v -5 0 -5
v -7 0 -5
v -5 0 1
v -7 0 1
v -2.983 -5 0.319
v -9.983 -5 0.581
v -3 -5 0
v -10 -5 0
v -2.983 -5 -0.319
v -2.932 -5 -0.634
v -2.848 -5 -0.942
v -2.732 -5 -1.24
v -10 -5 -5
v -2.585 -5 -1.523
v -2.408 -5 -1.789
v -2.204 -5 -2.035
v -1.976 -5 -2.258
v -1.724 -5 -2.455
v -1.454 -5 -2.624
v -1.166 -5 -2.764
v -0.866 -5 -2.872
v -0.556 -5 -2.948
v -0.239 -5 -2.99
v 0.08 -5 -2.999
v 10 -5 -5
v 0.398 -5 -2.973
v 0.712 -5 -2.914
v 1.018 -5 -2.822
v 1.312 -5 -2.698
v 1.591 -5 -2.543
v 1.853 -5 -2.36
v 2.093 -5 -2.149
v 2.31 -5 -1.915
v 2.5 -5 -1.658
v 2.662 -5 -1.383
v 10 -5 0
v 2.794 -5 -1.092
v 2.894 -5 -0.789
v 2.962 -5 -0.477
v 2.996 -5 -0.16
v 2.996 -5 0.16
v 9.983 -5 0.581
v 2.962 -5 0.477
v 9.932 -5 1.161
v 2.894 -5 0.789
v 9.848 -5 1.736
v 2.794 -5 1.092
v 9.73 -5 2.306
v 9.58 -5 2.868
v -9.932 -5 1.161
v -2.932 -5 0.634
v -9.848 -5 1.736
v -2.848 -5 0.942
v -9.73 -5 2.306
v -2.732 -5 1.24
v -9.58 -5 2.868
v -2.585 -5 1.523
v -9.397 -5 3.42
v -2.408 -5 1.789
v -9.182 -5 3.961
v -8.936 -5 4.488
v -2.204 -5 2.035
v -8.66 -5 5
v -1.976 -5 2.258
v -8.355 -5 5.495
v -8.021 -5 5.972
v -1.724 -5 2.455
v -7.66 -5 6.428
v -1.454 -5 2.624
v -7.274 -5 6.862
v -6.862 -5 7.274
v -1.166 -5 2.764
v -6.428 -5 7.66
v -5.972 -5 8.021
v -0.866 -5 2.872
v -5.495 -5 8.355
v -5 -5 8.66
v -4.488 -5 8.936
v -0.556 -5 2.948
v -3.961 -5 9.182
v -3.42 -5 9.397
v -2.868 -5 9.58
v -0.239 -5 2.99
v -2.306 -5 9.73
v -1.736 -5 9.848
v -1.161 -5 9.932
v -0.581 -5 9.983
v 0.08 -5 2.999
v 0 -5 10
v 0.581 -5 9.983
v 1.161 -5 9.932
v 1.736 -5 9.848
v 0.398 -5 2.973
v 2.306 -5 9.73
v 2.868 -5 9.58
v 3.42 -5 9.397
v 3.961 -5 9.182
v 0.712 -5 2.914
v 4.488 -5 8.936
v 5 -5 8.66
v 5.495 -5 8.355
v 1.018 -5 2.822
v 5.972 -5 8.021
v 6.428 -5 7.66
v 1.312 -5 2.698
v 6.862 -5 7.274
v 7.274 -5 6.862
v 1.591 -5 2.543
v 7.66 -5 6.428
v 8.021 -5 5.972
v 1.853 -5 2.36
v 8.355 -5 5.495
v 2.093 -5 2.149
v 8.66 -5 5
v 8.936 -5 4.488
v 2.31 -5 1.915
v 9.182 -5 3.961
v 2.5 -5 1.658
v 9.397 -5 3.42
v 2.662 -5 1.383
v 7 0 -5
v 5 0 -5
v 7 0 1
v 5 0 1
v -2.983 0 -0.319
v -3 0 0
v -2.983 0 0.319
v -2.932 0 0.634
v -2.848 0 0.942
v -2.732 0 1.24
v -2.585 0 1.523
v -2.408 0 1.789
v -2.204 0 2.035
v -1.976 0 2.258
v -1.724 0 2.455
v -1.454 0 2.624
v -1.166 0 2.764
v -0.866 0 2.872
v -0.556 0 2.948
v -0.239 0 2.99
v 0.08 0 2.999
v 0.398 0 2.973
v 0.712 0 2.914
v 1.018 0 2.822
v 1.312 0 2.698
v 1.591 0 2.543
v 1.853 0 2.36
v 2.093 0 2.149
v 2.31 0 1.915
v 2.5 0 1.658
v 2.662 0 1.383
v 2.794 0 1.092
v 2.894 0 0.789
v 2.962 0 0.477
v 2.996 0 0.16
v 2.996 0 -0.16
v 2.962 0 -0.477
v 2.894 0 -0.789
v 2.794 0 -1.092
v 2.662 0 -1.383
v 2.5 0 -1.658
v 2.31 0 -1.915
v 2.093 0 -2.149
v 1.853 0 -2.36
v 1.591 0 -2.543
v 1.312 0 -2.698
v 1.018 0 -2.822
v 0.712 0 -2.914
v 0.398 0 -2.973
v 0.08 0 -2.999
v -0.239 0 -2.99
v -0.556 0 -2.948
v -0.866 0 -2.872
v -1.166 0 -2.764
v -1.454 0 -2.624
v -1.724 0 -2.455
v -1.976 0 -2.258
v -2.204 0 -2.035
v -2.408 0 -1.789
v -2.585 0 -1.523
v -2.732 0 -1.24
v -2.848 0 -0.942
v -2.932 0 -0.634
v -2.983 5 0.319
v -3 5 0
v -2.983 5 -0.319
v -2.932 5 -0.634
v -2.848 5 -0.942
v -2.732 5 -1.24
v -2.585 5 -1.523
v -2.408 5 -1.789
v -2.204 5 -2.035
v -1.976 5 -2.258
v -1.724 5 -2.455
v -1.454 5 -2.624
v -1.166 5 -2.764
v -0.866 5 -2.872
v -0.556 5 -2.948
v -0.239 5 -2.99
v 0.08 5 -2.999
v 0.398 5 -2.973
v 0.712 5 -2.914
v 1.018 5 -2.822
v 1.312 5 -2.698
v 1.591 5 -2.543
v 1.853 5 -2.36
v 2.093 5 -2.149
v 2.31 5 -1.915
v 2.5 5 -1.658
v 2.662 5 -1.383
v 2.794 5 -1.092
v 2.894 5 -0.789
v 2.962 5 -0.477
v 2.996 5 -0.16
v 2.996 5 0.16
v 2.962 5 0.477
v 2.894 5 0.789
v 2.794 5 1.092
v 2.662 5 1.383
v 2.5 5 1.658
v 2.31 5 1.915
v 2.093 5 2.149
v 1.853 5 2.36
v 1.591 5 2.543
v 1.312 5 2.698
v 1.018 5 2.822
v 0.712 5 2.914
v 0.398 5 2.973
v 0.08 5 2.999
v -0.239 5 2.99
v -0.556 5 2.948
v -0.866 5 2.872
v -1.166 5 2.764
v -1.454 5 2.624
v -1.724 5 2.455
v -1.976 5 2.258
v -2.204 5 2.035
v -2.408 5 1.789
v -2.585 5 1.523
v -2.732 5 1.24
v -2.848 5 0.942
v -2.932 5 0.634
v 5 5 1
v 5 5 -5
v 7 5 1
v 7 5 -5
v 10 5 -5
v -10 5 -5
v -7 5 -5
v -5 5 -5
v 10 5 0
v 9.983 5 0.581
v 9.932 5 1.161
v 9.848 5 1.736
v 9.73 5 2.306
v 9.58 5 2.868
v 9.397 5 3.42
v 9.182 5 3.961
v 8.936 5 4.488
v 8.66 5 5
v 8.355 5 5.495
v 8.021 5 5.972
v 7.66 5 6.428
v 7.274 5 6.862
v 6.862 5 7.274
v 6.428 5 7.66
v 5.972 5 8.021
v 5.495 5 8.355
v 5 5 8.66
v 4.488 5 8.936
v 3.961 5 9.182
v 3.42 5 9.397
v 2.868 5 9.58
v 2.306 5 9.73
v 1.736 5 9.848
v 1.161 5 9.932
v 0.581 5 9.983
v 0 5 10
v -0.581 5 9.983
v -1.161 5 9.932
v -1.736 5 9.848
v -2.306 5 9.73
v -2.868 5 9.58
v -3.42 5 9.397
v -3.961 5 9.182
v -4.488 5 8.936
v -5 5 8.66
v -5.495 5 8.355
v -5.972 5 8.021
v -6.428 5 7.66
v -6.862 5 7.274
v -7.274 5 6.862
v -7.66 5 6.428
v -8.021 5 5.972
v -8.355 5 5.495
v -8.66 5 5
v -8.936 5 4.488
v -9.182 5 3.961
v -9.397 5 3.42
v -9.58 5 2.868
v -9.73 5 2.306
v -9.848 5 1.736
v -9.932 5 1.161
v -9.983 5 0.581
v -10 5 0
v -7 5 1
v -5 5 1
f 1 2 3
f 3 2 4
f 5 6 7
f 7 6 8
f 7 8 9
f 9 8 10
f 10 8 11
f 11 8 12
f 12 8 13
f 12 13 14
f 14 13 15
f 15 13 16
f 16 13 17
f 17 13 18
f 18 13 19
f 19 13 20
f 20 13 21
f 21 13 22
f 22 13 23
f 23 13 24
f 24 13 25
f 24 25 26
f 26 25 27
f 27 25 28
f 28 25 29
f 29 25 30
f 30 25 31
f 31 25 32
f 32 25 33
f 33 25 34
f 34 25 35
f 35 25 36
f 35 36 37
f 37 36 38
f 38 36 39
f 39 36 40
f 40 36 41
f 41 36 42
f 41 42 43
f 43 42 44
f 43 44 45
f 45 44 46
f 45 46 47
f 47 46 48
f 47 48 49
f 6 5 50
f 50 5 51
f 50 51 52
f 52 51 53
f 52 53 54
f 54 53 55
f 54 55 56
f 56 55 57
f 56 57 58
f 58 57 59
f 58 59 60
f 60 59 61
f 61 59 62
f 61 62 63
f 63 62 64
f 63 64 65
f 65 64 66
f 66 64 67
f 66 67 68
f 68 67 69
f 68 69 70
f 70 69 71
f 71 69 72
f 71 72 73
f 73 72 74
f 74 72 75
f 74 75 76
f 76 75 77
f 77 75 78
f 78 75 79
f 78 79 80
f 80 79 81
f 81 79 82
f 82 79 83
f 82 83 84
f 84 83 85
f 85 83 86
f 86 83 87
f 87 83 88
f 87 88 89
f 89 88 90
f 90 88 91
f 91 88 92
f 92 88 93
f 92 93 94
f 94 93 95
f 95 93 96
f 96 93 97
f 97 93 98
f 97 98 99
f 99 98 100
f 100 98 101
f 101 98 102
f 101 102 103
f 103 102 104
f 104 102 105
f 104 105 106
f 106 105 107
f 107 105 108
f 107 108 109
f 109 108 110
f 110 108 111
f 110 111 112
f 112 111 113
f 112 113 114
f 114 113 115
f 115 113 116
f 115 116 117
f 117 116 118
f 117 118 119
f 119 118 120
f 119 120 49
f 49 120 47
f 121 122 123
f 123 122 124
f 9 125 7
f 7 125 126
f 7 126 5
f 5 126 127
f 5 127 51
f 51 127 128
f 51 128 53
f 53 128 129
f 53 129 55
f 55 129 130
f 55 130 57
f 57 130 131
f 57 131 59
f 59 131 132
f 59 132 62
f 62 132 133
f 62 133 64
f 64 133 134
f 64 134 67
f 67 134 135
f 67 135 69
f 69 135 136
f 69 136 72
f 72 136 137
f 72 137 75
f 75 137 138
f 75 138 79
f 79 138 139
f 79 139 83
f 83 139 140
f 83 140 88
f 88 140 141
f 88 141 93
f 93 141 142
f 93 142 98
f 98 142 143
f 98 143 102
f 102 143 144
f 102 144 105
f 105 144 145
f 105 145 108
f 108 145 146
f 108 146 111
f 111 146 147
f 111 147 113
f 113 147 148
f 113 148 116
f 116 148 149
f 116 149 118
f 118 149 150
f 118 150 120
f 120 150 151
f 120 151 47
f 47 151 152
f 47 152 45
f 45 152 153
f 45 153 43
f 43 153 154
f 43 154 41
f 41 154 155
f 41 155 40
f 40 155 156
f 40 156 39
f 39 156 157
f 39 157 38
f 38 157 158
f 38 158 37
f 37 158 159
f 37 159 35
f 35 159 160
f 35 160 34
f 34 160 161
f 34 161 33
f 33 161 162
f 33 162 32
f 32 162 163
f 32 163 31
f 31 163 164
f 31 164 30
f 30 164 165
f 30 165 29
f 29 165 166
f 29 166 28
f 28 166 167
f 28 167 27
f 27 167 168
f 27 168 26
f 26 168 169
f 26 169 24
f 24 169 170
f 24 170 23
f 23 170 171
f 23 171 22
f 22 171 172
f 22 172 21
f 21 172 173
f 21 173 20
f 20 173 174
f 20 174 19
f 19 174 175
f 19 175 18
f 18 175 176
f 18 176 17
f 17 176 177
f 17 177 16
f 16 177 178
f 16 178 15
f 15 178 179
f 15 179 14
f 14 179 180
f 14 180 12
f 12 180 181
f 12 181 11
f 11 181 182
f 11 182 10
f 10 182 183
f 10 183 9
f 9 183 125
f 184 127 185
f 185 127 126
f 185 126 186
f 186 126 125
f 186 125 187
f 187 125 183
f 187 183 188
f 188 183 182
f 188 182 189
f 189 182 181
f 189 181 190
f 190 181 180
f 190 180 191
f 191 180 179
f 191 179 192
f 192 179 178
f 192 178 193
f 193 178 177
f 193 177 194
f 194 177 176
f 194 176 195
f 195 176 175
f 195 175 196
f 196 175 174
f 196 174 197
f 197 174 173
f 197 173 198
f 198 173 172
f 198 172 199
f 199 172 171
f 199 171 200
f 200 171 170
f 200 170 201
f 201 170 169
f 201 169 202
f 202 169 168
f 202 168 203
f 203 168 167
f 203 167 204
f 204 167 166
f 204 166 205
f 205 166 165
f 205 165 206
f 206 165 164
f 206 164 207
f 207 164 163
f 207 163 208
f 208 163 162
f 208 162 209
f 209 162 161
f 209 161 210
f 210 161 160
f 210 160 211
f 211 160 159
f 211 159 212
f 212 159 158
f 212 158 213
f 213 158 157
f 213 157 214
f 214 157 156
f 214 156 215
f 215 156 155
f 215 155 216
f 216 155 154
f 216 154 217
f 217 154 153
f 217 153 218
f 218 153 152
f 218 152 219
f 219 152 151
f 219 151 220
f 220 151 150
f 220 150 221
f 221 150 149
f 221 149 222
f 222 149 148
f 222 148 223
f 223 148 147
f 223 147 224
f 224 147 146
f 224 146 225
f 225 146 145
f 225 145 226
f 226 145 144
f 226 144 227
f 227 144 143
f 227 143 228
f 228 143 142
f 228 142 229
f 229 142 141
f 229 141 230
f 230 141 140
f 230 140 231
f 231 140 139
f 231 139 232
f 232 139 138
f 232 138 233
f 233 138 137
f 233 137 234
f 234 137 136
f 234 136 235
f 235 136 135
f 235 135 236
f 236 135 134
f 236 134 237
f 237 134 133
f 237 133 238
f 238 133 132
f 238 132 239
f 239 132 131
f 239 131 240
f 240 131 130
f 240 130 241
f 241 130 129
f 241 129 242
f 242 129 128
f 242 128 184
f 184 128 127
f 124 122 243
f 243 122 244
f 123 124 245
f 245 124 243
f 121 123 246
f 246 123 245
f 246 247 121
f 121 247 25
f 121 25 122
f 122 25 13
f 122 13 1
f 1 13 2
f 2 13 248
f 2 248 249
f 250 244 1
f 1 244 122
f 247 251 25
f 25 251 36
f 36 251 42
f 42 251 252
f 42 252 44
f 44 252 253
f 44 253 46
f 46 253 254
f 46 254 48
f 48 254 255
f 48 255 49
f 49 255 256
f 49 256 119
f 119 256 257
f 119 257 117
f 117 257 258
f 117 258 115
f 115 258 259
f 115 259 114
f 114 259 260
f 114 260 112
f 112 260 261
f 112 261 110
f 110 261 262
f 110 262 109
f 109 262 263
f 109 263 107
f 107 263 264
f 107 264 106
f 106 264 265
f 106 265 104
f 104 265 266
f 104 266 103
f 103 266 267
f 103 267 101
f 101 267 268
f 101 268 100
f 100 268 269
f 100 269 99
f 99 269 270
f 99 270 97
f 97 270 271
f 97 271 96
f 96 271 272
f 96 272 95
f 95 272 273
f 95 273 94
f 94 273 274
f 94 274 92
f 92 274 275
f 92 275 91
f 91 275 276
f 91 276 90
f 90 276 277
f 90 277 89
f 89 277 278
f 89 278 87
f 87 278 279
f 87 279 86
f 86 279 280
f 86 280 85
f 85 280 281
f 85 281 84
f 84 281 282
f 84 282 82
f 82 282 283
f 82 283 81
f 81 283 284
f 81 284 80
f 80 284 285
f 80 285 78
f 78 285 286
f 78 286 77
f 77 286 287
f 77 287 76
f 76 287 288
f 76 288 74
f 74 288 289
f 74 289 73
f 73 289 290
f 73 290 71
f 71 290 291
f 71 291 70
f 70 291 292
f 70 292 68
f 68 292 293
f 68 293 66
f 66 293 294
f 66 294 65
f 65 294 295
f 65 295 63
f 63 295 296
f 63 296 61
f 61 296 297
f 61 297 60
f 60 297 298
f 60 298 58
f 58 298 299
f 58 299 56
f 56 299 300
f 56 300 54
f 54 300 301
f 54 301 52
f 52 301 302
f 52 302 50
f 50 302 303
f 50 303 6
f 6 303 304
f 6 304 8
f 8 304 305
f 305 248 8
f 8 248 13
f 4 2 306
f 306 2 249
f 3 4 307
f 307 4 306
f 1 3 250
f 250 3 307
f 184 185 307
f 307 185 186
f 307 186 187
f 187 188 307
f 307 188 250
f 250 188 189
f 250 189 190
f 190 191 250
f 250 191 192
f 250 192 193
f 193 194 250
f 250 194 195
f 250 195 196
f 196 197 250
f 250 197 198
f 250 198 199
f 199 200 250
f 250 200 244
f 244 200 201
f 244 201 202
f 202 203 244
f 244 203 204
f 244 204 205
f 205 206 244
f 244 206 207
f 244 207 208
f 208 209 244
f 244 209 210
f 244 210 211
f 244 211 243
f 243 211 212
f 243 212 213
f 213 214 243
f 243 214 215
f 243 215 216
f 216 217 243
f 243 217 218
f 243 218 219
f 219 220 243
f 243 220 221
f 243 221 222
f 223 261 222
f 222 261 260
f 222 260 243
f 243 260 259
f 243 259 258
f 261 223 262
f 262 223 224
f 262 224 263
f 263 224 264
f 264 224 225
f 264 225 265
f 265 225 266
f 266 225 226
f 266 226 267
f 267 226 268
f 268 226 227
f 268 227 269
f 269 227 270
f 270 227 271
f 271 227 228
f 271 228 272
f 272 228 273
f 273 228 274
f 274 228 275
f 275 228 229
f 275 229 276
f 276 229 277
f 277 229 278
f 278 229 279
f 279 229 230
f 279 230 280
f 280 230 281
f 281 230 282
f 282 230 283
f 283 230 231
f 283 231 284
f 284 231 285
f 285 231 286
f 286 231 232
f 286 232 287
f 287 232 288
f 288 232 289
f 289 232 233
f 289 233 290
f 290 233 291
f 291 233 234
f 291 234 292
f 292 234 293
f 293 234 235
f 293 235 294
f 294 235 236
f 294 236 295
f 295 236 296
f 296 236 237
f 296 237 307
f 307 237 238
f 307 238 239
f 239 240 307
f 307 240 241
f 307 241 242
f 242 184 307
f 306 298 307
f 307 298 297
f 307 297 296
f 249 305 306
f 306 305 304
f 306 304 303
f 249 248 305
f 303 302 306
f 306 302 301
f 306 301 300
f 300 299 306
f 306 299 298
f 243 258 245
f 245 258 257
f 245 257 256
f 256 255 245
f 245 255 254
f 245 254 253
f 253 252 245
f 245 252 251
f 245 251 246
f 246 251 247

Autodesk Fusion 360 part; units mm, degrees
sketch "Sketch1" plane through (0, 0, 0) normal (0, 1, 0) x (1, 0, 0)
  circle A0 centre (0, 0) radius 3
  circle A1 centre (0, 0) radius 5
  line L0 (5, -1) -> (7, -1)
  line L1 (7, -1) -> (7, 51)
  line L2 (7, 51) -> (5, 51)
  line L3 (5, 51) -> (5, -1)
  line L4 (5, 25) -> (0, 25) construction
  line L5 (0, 25) -> (0, 0) construction
  line L6 (0, 0) -> (0, -10) construction
  line L7 (0, 5) -> (10, 5) construction
  line L8 (10, 5) -> (10, 0)
  arc A2 (0, -10) -> (10, 0) centre (0, 0) ccw
  line L9 (10, 5) -> (7, 5)
  line L10 (5, 5) -> (0, 5)
  line L11 (-5, 5) -> (0, 5)
  line L12 (-5, 51) -> (-5, -1)
  line L13 (-5, -1) -> (-7, -1)
  line L14 (-7, -1) -> (-7, 51)
  line L15 (-10, 5) -> (-7, 5)
  arc A3 (-10, 0) -> (0, -10) centre (0, 0) ccw
  line L16 (-10, 5) -> (-10, 0)
  dimension "d1" = 6
  dimension "d2" = 10
  dimension "d3" = 2
  dimension "d4" = 52
  dimension "d5" = 25
  dimension "d6" = 10
  dimension "d7" = 10
  dimension "d8" = 5
extrude "Extrude1" add sketch "Sketch1" along normal blind 5 contours A1 | A1 L0 L1 L3 L8 A2 L9 L12 L13 L14 L15 A3 L16 | A1 L3 L10 | A1 L11 L12
sketch "Sketch2" plane through (0, 0, 0) normal (0, -1, 0) x (1, 0, 0)
  circle A0 centre (0, 0) radius 3
  line L0 (-5, 1) -> (-5, -5)
  line L1 (-5, -5) -> (5, -5)
  line L2 (5, -5) -> (5, 1)
  line L3 (5, 1) -> (7, 1)
  line L4 (7, 1) -> (7, -5)
  line L5 (7, -5) -> (10, -5)
  line L6 (10, -5) -> (10, 0)
  arc A1 (10, 0) -> (-10, 0) centre (0, 0) ccw
  line L7 (-10, 0) -> (-10, -5)
  line L8 (-10, -5) -> (-7, -5)
  line L9 (-7, -5) -> (-7, 1)
  line L10 (-7, 1) -> (-5, 1)
  line L11 (10, -5) -> (-10, -5)
extrude "Extrude2" add sketch "Sketch2" along normal blind 5
